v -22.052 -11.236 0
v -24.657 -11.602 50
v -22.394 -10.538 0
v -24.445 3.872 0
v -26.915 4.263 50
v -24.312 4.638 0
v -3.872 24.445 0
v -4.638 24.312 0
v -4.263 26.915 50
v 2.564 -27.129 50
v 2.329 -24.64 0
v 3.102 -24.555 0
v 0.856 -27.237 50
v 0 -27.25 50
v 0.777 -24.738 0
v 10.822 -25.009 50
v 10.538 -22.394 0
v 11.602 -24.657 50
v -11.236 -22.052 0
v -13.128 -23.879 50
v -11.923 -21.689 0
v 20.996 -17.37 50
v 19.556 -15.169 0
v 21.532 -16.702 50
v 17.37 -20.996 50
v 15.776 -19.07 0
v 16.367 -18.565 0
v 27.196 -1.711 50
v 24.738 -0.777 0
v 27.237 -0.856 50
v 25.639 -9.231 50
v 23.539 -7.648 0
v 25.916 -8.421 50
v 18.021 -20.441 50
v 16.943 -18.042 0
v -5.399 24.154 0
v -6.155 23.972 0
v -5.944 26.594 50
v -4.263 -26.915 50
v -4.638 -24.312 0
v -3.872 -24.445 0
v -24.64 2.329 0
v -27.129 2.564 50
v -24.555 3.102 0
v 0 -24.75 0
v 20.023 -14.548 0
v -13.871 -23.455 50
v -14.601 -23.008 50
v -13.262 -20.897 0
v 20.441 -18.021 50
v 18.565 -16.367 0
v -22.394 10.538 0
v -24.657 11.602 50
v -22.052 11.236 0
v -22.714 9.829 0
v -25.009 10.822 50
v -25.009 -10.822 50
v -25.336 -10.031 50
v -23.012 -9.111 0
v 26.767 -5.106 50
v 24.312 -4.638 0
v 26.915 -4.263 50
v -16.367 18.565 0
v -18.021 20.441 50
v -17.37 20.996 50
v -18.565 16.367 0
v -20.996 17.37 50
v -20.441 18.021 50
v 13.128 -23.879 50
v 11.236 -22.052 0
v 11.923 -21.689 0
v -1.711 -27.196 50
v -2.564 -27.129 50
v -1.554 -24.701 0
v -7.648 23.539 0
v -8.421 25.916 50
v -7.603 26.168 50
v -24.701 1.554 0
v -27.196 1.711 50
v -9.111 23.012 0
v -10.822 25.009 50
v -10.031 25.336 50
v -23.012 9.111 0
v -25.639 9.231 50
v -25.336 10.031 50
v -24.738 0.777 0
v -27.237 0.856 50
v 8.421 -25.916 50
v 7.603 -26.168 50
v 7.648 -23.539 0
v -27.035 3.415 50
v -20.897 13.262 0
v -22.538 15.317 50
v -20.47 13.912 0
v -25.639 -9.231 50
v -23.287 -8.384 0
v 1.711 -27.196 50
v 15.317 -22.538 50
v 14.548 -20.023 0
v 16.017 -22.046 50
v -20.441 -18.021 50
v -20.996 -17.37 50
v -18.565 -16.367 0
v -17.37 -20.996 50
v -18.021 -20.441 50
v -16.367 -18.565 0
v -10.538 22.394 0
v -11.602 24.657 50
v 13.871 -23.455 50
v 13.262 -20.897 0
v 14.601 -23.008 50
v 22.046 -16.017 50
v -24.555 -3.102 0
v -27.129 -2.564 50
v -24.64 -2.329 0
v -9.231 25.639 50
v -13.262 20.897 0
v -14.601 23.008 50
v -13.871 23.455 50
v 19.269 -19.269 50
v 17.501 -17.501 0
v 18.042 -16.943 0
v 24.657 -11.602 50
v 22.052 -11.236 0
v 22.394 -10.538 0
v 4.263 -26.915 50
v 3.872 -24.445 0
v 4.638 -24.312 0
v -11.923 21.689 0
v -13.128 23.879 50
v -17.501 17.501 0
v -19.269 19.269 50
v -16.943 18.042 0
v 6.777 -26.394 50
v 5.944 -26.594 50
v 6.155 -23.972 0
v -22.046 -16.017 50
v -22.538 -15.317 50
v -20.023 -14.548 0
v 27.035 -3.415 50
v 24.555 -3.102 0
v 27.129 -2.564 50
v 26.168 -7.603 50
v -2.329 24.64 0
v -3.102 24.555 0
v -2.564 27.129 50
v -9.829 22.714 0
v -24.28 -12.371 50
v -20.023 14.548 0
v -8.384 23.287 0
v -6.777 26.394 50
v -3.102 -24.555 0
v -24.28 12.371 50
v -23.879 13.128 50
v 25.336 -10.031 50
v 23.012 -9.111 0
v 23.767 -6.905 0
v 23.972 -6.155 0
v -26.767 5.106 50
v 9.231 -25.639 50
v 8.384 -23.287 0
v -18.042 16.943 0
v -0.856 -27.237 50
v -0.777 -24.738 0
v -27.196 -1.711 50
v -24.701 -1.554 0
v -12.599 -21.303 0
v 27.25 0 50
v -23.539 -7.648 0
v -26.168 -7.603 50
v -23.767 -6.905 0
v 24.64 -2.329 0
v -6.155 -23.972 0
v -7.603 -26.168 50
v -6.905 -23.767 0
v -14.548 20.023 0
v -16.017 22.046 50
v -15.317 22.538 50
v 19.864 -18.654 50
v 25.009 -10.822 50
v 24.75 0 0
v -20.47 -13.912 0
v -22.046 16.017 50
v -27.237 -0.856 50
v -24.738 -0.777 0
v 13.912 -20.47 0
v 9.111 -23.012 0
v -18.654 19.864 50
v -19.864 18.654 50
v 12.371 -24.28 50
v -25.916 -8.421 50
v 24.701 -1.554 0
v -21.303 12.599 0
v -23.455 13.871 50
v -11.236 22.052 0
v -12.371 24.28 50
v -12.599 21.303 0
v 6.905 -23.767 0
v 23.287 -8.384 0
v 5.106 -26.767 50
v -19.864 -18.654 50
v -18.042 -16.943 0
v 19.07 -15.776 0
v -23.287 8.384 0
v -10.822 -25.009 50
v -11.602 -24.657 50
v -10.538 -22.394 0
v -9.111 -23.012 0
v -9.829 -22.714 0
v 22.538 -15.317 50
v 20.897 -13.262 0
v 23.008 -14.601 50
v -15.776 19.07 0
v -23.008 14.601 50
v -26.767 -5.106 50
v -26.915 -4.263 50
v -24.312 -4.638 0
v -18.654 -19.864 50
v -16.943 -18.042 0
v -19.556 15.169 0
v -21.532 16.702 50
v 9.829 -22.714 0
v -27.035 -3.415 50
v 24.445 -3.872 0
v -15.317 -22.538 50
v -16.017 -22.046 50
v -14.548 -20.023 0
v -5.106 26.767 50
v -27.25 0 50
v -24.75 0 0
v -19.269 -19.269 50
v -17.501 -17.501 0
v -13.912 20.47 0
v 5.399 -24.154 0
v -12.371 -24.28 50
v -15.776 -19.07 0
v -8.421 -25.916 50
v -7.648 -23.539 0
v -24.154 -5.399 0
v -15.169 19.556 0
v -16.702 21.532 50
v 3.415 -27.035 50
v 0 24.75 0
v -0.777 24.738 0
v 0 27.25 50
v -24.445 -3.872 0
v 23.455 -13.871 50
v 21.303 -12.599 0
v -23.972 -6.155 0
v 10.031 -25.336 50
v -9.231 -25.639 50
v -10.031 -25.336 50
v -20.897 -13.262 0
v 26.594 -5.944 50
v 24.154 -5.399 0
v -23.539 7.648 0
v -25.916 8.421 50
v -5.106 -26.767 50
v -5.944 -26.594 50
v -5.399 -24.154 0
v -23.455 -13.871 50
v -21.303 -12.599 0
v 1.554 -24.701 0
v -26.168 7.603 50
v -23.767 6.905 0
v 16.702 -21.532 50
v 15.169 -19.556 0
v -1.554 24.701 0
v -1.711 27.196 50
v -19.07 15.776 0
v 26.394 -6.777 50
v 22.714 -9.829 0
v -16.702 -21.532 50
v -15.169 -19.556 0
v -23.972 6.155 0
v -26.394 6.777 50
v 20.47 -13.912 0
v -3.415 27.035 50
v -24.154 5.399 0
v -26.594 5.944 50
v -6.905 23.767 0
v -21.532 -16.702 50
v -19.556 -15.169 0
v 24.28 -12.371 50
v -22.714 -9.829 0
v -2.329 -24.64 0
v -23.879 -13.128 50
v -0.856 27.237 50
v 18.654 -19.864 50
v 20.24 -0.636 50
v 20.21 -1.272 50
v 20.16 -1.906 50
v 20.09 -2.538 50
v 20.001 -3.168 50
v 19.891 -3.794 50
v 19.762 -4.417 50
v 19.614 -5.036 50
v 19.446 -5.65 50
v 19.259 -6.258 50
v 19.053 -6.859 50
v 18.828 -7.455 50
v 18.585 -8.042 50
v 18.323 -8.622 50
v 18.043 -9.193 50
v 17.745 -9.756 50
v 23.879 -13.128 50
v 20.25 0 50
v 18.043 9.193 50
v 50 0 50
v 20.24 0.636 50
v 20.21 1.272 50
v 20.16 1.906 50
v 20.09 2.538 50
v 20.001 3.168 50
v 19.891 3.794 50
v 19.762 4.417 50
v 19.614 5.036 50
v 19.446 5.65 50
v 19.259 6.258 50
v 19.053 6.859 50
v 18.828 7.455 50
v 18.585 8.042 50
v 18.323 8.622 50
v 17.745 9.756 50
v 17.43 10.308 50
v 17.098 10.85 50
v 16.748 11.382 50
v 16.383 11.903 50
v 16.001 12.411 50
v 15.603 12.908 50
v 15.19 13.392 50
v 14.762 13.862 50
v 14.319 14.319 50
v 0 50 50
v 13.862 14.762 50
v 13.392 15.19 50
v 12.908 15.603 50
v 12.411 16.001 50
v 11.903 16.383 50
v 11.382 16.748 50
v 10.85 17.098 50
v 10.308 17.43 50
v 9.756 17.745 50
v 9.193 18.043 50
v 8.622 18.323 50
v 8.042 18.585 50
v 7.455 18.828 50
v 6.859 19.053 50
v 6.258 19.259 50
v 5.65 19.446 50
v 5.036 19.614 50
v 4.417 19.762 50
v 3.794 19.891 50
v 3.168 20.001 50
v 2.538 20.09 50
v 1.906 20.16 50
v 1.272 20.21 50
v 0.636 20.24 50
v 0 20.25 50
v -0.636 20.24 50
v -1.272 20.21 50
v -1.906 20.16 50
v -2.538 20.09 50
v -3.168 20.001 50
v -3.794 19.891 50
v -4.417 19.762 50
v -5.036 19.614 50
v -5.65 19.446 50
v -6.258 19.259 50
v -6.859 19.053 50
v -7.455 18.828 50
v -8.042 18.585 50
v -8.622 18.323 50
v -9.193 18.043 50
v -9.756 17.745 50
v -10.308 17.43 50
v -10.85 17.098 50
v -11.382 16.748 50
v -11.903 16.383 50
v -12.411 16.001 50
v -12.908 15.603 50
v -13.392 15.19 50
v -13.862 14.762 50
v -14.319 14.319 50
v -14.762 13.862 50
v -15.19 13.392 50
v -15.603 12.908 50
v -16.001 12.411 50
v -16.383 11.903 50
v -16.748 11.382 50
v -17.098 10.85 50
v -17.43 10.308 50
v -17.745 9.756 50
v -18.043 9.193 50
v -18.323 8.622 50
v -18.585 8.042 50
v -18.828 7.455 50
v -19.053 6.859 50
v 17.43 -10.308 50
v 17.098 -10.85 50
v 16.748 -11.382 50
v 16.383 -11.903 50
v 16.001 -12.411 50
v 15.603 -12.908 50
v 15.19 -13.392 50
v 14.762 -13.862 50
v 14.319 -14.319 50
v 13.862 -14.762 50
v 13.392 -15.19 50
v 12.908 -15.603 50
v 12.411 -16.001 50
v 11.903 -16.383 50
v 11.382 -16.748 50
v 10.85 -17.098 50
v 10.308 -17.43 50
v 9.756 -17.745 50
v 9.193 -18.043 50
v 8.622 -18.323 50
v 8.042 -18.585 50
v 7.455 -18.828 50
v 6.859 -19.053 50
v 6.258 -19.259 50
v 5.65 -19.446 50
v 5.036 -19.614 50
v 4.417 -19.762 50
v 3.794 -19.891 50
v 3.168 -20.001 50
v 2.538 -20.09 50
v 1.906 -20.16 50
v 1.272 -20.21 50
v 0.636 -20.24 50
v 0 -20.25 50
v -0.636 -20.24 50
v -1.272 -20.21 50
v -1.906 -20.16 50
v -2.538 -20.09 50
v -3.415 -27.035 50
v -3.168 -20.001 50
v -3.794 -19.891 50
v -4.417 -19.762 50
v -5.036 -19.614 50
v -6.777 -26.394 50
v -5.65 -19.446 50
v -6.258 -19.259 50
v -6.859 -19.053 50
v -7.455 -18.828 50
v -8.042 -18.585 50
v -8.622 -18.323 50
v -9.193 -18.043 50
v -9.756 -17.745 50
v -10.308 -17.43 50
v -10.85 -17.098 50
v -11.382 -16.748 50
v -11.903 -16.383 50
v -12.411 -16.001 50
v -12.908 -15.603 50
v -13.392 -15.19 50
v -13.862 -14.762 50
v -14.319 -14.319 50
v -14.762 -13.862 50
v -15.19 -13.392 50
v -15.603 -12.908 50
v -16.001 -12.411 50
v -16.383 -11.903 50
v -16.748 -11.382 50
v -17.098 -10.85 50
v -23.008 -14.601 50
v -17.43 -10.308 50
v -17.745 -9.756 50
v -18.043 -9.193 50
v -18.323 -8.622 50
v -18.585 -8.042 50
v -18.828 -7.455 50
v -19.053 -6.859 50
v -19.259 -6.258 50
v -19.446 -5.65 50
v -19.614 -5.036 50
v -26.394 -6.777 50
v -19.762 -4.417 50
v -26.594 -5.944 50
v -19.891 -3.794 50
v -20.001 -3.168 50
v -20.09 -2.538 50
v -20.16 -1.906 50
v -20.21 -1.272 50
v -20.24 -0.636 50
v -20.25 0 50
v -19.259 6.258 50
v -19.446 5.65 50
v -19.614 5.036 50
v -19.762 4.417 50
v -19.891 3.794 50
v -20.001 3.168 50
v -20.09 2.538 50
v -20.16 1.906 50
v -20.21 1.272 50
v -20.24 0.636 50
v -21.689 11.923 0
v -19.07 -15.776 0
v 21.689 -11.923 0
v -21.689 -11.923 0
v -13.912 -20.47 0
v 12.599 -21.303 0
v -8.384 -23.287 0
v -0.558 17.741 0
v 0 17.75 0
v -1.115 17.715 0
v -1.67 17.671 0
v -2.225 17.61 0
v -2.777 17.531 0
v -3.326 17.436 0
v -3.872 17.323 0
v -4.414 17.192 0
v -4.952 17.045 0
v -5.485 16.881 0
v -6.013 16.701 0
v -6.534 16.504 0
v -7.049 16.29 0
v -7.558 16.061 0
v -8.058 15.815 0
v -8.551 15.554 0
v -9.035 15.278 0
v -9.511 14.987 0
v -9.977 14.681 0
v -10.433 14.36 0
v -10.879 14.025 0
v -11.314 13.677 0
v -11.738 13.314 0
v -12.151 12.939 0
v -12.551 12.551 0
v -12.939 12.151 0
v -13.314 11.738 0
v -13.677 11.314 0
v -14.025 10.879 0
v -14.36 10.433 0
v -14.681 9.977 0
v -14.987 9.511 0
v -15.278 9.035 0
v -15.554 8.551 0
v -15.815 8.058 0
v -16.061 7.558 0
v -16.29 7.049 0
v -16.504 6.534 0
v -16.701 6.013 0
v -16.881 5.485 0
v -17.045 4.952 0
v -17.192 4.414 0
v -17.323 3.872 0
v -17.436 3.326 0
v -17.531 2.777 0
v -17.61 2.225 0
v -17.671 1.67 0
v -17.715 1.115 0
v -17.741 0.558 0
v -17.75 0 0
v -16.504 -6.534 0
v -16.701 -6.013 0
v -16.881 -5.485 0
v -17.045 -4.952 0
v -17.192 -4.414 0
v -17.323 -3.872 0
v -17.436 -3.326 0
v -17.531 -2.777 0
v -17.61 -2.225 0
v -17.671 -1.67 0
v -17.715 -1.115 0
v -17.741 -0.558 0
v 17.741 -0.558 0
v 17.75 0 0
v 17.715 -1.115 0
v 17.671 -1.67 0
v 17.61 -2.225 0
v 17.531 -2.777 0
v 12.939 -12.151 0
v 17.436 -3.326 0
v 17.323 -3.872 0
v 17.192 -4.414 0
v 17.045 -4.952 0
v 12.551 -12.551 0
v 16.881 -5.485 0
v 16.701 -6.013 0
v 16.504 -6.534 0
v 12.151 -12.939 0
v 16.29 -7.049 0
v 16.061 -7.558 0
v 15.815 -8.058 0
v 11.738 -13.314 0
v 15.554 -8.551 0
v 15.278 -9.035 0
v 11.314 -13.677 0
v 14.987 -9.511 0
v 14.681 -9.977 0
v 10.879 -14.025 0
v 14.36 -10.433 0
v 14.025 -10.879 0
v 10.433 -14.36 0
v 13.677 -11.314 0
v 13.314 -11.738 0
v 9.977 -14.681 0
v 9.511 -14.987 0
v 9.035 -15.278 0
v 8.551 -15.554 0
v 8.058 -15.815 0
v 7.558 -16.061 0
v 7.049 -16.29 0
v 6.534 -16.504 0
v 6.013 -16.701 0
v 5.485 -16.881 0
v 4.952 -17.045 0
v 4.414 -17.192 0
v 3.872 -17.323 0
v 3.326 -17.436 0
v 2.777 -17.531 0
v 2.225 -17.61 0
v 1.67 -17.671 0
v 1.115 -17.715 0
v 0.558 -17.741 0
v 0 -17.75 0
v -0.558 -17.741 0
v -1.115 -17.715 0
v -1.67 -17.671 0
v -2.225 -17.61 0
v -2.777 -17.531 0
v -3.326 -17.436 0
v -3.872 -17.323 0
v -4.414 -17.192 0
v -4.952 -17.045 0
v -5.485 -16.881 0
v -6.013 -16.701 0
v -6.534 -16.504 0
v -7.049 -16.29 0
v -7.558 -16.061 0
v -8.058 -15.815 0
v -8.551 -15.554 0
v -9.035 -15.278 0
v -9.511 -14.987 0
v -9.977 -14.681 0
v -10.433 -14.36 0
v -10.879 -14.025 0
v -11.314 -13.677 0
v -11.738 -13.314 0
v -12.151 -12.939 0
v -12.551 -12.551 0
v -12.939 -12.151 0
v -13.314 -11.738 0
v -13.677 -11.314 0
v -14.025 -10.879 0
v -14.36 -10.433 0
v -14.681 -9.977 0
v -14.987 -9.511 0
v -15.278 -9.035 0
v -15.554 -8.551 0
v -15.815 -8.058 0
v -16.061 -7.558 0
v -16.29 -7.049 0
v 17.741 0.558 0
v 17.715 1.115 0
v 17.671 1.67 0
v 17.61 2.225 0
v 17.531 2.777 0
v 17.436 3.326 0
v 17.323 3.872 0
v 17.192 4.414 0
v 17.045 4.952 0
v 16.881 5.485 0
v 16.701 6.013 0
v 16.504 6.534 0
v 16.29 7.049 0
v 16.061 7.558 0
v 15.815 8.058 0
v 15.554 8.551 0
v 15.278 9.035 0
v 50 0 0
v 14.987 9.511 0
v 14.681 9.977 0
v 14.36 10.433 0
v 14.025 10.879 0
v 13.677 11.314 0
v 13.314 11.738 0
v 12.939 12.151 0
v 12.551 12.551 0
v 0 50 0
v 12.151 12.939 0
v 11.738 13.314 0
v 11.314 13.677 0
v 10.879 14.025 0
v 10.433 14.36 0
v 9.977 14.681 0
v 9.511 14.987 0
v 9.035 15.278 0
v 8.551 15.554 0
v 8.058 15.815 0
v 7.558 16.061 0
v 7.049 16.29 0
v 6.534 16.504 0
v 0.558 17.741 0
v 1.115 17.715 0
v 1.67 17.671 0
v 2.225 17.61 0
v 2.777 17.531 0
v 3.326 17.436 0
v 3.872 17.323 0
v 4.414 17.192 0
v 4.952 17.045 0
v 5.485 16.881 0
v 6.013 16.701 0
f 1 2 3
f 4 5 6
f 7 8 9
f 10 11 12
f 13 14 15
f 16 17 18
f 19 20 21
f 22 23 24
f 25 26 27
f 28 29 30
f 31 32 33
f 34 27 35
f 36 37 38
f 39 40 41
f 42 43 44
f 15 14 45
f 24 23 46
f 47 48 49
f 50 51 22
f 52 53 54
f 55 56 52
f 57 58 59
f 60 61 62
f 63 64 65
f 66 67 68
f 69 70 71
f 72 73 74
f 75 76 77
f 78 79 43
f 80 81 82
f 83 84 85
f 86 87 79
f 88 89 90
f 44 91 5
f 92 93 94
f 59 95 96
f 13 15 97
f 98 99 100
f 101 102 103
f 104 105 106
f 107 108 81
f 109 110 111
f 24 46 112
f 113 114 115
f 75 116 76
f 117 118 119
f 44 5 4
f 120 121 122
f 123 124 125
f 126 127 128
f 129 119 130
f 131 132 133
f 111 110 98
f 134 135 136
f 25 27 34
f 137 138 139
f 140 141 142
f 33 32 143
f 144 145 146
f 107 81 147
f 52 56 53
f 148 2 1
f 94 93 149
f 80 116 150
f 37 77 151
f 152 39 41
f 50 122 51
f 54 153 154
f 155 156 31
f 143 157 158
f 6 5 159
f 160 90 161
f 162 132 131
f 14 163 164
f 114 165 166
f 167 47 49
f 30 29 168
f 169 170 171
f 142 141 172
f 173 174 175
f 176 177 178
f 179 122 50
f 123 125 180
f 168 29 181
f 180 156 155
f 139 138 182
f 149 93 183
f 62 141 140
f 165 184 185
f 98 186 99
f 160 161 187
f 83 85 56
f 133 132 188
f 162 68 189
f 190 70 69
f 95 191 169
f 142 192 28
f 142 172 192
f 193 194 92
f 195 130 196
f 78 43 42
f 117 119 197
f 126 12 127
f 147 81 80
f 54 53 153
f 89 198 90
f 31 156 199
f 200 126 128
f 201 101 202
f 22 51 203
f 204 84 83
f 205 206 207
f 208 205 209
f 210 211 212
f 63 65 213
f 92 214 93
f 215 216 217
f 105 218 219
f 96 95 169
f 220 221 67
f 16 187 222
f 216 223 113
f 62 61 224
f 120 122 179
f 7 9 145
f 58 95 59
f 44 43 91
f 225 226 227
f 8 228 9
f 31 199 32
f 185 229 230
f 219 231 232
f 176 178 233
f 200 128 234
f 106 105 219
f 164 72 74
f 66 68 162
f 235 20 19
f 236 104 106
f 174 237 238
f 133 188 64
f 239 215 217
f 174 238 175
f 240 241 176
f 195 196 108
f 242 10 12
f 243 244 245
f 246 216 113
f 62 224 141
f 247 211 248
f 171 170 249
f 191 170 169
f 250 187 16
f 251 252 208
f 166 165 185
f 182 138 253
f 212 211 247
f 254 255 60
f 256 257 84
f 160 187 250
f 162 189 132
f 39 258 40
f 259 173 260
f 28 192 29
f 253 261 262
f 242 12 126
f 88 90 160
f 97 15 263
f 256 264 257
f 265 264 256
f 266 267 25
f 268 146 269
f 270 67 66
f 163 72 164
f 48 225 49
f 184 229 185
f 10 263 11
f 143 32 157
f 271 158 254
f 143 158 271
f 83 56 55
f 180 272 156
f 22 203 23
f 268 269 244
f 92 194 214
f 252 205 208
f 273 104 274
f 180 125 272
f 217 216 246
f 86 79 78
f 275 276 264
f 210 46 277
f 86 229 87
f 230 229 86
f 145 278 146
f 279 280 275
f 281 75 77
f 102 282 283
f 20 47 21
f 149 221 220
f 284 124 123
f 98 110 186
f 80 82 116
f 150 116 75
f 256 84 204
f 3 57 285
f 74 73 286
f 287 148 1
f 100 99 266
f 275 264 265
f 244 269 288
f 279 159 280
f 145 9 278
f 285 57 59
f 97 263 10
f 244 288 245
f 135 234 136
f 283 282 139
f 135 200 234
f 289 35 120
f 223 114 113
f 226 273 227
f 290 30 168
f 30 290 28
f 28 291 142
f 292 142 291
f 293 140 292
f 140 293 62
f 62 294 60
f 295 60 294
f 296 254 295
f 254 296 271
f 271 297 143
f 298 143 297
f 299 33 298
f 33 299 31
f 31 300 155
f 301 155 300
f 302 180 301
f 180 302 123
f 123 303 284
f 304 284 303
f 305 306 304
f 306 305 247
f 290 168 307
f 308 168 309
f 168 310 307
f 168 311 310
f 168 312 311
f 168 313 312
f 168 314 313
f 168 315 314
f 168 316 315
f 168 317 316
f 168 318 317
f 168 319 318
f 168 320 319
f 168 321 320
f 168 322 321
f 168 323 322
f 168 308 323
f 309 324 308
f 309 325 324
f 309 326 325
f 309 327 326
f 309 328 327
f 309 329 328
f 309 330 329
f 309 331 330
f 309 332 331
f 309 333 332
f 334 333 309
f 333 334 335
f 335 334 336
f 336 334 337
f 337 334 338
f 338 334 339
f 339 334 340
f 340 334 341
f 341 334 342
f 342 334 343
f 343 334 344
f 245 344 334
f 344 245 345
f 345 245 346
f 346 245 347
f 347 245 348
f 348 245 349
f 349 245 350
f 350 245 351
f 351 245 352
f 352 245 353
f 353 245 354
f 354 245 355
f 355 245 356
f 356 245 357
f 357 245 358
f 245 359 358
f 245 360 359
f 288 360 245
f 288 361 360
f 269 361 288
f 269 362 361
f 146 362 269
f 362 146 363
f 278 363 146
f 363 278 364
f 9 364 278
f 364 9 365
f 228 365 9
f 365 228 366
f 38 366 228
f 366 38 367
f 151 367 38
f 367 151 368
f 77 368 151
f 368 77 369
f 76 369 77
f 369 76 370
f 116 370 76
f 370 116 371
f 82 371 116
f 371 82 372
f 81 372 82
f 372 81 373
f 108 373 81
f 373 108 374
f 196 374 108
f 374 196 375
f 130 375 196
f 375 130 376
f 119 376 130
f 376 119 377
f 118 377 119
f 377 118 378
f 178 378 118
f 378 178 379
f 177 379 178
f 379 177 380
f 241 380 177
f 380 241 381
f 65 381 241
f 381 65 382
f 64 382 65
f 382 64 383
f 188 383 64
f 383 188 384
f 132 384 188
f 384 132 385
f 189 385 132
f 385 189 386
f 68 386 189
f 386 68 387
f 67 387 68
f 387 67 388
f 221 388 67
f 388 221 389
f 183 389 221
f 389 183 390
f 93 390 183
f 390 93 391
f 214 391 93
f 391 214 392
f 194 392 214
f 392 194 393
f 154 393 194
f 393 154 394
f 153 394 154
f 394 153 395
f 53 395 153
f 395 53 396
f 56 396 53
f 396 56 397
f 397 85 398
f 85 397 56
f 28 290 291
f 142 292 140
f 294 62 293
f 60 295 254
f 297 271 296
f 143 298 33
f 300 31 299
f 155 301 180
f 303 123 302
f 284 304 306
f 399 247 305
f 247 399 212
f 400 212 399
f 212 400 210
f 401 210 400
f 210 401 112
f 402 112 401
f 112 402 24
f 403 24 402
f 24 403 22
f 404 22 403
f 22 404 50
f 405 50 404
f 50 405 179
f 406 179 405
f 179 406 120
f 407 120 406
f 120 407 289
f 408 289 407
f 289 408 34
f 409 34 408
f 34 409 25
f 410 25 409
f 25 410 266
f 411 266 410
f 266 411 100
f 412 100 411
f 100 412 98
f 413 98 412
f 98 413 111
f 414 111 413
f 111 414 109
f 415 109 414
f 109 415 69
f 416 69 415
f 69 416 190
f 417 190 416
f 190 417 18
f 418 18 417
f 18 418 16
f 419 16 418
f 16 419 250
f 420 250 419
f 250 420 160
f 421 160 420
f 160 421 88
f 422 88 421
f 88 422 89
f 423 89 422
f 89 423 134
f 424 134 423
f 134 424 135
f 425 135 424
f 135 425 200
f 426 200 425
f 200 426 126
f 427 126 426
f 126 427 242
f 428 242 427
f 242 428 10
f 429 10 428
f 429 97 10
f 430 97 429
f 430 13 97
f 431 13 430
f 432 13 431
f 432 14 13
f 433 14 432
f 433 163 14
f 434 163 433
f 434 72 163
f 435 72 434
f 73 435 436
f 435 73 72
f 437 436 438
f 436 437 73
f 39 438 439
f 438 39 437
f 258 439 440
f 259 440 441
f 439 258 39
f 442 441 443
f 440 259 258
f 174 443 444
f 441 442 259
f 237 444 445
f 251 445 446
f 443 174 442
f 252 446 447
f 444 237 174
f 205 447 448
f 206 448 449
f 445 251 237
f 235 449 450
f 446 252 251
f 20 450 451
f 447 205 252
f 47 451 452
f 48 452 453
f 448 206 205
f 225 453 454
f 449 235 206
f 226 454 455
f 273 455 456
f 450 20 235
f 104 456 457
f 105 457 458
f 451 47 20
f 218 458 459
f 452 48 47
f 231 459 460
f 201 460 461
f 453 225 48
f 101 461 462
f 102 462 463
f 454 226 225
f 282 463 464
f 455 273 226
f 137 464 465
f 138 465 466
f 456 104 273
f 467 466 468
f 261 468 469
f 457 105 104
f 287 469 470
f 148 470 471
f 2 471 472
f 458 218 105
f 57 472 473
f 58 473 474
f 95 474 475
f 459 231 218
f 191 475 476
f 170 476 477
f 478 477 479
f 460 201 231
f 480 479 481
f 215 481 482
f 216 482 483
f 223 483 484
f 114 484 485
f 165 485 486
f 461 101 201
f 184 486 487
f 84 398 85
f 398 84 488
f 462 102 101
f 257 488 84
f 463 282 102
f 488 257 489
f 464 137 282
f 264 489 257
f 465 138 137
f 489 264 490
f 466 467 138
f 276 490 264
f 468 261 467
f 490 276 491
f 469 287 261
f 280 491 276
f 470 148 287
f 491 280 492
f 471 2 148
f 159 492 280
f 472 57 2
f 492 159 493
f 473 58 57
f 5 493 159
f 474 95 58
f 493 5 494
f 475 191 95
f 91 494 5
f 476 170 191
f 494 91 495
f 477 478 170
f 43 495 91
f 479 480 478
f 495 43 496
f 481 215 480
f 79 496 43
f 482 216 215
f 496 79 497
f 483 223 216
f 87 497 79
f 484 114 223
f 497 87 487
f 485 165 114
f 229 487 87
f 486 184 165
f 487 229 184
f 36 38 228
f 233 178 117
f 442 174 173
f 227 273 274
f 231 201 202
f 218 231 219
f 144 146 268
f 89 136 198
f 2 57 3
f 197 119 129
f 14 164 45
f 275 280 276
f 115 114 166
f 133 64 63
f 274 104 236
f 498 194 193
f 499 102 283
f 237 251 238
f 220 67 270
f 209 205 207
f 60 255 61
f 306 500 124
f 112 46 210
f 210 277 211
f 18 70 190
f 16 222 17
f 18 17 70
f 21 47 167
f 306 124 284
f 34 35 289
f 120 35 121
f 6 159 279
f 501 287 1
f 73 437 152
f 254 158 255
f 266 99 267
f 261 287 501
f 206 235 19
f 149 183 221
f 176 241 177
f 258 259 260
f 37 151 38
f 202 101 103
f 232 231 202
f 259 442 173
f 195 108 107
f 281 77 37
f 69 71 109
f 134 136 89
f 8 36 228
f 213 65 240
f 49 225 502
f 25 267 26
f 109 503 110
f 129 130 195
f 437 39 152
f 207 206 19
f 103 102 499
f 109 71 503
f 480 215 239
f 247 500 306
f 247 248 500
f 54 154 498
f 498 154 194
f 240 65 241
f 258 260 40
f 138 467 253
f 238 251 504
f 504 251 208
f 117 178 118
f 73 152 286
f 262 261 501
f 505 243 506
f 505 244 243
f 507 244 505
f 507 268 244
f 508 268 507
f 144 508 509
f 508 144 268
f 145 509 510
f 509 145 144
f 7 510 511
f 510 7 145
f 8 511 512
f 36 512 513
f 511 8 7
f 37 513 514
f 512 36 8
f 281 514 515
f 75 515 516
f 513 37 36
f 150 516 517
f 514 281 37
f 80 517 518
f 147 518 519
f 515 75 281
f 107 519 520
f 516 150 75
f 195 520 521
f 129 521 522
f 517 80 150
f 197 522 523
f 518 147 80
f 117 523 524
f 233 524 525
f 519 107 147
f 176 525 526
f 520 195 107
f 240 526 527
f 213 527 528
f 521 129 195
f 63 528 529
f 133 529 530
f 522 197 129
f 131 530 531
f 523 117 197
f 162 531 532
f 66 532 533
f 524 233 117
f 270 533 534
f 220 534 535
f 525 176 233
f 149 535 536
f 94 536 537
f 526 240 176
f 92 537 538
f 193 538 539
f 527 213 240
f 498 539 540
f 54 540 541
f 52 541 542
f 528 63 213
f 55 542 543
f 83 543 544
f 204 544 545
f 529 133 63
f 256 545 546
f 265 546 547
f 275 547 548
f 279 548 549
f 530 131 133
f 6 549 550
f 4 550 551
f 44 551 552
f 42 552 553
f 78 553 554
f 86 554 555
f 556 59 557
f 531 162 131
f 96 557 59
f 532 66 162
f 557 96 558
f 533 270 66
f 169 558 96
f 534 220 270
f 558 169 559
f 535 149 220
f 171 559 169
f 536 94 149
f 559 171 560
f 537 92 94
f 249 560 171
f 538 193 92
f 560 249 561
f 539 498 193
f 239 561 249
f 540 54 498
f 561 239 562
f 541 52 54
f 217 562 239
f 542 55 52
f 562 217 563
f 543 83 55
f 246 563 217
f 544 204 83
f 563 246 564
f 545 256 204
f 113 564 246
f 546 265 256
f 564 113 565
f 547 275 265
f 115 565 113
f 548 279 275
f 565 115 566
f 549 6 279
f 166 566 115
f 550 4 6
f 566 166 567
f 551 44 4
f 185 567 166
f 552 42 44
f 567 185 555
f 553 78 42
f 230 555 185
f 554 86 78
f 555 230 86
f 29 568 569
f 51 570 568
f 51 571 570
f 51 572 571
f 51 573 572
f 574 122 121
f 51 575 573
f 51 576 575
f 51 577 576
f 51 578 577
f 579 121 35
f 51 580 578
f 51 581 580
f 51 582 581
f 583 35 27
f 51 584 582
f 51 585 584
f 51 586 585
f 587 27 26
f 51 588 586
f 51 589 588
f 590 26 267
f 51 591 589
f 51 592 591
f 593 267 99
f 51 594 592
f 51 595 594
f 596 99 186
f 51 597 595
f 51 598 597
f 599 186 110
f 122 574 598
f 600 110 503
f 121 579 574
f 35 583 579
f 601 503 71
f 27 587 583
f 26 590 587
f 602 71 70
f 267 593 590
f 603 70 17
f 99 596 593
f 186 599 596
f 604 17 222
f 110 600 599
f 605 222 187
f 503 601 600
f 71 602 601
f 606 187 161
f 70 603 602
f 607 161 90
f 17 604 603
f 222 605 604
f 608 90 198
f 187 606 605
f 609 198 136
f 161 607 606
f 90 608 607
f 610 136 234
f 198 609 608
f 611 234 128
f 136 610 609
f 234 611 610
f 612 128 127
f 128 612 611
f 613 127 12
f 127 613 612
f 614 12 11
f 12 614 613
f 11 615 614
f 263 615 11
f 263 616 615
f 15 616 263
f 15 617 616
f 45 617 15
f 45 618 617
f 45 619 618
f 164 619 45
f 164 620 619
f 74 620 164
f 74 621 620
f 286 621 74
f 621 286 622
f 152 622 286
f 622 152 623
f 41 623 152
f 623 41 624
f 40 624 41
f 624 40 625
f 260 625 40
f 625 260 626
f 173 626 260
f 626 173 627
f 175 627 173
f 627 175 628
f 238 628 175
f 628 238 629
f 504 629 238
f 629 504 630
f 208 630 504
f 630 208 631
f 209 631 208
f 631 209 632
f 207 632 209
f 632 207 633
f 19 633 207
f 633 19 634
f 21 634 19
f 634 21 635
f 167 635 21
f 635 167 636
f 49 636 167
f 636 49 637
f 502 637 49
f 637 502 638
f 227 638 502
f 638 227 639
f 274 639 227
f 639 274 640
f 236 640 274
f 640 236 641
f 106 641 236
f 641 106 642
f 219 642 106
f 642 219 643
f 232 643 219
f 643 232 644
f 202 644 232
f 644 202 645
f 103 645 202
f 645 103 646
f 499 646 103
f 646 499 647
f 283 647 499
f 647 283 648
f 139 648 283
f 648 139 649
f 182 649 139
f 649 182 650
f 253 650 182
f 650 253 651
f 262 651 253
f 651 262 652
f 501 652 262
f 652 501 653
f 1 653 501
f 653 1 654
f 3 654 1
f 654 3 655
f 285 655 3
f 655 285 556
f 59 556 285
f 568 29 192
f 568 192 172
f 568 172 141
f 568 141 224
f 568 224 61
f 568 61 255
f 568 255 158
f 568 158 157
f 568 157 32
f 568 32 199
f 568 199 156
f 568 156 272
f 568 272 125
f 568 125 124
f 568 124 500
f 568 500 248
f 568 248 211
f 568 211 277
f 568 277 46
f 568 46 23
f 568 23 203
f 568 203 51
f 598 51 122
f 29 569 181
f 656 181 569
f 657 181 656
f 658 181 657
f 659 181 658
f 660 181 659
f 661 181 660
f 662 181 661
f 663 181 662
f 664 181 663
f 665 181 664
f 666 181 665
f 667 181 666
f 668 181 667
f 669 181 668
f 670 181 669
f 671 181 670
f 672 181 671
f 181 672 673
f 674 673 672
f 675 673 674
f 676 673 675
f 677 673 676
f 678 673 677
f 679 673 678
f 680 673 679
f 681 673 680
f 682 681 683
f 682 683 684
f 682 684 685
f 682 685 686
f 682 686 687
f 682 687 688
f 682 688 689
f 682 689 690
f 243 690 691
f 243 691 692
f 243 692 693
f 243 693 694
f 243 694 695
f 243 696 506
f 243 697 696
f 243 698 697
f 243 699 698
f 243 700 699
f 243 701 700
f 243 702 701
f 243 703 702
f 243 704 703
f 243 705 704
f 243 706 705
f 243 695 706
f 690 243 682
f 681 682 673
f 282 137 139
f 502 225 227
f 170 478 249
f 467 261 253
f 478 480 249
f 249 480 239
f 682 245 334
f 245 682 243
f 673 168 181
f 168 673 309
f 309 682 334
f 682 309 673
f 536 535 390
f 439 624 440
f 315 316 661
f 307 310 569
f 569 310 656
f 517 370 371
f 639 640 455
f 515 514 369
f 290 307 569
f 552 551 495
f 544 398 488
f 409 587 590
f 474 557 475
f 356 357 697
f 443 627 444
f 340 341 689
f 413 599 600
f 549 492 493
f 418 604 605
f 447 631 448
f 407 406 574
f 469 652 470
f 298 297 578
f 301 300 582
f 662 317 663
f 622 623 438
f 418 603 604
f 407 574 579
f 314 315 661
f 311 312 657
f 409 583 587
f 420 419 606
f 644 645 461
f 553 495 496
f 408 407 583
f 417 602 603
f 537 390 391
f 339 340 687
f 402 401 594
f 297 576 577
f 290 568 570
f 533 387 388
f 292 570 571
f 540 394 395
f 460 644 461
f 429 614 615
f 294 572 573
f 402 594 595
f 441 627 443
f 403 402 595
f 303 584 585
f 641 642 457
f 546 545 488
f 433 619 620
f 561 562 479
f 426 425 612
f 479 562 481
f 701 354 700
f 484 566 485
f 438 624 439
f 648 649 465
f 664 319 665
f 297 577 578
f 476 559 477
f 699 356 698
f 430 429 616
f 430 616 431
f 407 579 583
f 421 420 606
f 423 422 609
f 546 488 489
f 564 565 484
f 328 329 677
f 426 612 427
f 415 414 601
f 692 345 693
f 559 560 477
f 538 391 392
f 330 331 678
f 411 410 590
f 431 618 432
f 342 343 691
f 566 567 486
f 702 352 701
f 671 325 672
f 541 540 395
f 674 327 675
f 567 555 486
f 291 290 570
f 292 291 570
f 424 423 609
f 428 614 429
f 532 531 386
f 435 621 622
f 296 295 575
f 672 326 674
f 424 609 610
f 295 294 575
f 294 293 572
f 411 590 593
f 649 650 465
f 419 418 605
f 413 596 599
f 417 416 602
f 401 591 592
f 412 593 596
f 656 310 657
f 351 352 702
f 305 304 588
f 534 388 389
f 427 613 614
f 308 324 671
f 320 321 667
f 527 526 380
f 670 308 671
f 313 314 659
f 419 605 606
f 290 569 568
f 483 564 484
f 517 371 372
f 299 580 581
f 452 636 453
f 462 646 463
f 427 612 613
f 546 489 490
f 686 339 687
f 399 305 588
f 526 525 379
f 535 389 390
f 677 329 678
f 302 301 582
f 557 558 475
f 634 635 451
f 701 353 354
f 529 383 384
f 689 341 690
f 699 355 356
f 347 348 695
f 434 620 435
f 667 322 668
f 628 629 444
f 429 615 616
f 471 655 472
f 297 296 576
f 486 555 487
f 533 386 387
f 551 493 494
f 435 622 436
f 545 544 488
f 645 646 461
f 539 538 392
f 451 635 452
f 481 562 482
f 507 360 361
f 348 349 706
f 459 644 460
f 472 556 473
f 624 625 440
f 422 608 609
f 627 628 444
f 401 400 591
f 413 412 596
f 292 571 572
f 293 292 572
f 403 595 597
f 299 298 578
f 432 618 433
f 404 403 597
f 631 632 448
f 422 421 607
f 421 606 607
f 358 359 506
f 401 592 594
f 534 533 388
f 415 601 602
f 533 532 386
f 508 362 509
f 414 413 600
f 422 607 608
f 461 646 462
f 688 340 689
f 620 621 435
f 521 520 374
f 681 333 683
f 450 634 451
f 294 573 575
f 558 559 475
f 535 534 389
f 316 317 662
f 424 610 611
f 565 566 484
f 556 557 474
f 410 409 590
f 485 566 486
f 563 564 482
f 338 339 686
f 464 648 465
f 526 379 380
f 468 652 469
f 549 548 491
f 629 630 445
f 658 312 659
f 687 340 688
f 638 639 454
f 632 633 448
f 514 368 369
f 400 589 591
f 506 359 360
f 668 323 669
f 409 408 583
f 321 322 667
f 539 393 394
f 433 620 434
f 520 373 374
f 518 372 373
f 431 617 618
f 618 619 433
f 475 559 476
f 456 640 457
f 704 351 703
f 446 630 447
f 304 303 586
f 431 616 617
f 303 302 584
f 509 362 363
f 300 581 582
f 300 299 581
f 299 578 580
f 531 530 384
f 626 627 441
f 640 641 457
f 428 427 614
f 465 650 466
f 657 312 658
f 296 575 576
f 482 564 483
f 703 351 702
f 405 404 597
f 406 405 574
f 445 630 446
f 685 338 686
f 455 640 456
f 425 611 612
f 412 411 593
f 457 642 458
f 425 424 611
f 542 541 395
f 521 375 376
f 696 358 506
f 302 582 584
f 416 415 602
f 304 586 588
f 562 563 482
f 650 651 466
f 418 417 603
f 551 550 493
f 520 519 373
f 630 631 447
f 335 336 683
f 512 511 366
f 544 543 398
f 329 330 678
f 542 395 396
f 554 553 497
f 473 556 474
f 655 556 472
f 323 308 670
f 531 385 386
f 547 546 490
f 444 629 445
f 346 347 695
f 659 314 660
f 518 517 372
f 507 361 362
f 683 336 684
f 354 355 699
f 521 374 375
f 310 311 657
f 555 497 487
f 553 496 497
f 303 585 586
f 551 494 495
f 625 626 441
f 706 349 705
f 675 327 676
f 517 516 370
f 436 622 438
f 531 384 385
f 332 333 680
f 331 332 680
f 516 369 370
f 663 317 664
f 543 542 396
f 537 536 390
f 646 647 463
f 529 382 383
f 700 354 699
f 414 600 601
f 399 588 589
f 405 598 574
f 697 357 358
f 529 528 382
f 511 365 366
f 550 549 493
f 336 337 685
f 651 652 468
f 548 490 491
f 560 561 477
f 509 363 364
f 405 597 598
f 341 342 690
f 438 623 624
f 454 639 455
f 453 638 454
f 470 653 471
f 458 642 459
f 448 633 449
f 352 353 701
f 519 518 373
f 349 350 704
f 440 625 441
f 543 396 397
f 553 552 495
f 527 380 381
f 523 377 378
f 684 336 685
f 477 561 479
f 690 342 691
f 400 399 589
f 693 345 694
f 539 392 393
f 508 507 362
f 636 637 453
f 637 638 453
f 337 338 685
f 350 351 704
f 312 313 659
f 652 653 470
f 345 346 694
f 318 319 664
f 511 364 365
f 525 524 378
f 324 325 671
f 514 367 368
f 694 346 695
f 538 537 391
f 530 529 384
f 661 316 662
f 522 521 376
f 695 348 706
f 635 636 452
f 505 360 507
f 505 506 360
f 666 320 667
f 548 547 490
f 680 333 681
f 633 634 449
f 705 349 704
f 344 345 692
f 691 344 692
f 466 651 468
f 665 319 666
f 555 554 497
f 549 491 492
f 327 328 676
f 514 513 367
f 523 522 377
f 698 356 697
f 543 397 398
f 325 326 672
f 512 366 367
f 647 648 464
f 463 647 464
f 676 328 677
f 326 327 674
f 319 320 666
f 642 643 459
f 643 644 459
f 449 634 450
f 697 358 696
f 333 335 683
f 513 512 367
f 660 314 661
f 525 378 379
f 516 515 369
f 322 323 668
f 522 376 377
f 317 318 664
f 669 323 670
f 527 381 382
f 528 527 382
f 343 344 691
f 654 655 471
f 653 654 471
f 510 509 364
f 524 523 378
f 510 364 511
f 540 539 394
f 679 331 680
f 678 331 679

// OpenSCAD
$fn=200;

inside_h= 50;

inside_bottom_dia= 35.5;
inside_top_dia = 40.5;

inside_bottom_r1= inside_bottom_dia / 2;
inside_top_r1 = inside_top_dia / 2;
hypotheneus = sqrt((inside_h  * inside_h) * 2);

thick = 7;


module solid(){
    difference() {
        union() {
            cylinder(h = inside_h, r1= inside_bottom_r1+ thick , r2 = inside_top_r1 + thick);
            cube([inside_h, inside_h, inside_h]);
        }
        // punch out
        union() {
            color("RED", 1)
            rotate([ 0,0,45])
            translate([hypotheneus/2, -hypotheneus/2, 0] )
            cube([hypotheneus,hypotheneus, inside_h], false);
            
            color ("GREEN", 1)
            cylinder(h = inside_h, r1= inside_bottom_r1, r2 = inside_top_r1);
        }
    }
}


solid();
